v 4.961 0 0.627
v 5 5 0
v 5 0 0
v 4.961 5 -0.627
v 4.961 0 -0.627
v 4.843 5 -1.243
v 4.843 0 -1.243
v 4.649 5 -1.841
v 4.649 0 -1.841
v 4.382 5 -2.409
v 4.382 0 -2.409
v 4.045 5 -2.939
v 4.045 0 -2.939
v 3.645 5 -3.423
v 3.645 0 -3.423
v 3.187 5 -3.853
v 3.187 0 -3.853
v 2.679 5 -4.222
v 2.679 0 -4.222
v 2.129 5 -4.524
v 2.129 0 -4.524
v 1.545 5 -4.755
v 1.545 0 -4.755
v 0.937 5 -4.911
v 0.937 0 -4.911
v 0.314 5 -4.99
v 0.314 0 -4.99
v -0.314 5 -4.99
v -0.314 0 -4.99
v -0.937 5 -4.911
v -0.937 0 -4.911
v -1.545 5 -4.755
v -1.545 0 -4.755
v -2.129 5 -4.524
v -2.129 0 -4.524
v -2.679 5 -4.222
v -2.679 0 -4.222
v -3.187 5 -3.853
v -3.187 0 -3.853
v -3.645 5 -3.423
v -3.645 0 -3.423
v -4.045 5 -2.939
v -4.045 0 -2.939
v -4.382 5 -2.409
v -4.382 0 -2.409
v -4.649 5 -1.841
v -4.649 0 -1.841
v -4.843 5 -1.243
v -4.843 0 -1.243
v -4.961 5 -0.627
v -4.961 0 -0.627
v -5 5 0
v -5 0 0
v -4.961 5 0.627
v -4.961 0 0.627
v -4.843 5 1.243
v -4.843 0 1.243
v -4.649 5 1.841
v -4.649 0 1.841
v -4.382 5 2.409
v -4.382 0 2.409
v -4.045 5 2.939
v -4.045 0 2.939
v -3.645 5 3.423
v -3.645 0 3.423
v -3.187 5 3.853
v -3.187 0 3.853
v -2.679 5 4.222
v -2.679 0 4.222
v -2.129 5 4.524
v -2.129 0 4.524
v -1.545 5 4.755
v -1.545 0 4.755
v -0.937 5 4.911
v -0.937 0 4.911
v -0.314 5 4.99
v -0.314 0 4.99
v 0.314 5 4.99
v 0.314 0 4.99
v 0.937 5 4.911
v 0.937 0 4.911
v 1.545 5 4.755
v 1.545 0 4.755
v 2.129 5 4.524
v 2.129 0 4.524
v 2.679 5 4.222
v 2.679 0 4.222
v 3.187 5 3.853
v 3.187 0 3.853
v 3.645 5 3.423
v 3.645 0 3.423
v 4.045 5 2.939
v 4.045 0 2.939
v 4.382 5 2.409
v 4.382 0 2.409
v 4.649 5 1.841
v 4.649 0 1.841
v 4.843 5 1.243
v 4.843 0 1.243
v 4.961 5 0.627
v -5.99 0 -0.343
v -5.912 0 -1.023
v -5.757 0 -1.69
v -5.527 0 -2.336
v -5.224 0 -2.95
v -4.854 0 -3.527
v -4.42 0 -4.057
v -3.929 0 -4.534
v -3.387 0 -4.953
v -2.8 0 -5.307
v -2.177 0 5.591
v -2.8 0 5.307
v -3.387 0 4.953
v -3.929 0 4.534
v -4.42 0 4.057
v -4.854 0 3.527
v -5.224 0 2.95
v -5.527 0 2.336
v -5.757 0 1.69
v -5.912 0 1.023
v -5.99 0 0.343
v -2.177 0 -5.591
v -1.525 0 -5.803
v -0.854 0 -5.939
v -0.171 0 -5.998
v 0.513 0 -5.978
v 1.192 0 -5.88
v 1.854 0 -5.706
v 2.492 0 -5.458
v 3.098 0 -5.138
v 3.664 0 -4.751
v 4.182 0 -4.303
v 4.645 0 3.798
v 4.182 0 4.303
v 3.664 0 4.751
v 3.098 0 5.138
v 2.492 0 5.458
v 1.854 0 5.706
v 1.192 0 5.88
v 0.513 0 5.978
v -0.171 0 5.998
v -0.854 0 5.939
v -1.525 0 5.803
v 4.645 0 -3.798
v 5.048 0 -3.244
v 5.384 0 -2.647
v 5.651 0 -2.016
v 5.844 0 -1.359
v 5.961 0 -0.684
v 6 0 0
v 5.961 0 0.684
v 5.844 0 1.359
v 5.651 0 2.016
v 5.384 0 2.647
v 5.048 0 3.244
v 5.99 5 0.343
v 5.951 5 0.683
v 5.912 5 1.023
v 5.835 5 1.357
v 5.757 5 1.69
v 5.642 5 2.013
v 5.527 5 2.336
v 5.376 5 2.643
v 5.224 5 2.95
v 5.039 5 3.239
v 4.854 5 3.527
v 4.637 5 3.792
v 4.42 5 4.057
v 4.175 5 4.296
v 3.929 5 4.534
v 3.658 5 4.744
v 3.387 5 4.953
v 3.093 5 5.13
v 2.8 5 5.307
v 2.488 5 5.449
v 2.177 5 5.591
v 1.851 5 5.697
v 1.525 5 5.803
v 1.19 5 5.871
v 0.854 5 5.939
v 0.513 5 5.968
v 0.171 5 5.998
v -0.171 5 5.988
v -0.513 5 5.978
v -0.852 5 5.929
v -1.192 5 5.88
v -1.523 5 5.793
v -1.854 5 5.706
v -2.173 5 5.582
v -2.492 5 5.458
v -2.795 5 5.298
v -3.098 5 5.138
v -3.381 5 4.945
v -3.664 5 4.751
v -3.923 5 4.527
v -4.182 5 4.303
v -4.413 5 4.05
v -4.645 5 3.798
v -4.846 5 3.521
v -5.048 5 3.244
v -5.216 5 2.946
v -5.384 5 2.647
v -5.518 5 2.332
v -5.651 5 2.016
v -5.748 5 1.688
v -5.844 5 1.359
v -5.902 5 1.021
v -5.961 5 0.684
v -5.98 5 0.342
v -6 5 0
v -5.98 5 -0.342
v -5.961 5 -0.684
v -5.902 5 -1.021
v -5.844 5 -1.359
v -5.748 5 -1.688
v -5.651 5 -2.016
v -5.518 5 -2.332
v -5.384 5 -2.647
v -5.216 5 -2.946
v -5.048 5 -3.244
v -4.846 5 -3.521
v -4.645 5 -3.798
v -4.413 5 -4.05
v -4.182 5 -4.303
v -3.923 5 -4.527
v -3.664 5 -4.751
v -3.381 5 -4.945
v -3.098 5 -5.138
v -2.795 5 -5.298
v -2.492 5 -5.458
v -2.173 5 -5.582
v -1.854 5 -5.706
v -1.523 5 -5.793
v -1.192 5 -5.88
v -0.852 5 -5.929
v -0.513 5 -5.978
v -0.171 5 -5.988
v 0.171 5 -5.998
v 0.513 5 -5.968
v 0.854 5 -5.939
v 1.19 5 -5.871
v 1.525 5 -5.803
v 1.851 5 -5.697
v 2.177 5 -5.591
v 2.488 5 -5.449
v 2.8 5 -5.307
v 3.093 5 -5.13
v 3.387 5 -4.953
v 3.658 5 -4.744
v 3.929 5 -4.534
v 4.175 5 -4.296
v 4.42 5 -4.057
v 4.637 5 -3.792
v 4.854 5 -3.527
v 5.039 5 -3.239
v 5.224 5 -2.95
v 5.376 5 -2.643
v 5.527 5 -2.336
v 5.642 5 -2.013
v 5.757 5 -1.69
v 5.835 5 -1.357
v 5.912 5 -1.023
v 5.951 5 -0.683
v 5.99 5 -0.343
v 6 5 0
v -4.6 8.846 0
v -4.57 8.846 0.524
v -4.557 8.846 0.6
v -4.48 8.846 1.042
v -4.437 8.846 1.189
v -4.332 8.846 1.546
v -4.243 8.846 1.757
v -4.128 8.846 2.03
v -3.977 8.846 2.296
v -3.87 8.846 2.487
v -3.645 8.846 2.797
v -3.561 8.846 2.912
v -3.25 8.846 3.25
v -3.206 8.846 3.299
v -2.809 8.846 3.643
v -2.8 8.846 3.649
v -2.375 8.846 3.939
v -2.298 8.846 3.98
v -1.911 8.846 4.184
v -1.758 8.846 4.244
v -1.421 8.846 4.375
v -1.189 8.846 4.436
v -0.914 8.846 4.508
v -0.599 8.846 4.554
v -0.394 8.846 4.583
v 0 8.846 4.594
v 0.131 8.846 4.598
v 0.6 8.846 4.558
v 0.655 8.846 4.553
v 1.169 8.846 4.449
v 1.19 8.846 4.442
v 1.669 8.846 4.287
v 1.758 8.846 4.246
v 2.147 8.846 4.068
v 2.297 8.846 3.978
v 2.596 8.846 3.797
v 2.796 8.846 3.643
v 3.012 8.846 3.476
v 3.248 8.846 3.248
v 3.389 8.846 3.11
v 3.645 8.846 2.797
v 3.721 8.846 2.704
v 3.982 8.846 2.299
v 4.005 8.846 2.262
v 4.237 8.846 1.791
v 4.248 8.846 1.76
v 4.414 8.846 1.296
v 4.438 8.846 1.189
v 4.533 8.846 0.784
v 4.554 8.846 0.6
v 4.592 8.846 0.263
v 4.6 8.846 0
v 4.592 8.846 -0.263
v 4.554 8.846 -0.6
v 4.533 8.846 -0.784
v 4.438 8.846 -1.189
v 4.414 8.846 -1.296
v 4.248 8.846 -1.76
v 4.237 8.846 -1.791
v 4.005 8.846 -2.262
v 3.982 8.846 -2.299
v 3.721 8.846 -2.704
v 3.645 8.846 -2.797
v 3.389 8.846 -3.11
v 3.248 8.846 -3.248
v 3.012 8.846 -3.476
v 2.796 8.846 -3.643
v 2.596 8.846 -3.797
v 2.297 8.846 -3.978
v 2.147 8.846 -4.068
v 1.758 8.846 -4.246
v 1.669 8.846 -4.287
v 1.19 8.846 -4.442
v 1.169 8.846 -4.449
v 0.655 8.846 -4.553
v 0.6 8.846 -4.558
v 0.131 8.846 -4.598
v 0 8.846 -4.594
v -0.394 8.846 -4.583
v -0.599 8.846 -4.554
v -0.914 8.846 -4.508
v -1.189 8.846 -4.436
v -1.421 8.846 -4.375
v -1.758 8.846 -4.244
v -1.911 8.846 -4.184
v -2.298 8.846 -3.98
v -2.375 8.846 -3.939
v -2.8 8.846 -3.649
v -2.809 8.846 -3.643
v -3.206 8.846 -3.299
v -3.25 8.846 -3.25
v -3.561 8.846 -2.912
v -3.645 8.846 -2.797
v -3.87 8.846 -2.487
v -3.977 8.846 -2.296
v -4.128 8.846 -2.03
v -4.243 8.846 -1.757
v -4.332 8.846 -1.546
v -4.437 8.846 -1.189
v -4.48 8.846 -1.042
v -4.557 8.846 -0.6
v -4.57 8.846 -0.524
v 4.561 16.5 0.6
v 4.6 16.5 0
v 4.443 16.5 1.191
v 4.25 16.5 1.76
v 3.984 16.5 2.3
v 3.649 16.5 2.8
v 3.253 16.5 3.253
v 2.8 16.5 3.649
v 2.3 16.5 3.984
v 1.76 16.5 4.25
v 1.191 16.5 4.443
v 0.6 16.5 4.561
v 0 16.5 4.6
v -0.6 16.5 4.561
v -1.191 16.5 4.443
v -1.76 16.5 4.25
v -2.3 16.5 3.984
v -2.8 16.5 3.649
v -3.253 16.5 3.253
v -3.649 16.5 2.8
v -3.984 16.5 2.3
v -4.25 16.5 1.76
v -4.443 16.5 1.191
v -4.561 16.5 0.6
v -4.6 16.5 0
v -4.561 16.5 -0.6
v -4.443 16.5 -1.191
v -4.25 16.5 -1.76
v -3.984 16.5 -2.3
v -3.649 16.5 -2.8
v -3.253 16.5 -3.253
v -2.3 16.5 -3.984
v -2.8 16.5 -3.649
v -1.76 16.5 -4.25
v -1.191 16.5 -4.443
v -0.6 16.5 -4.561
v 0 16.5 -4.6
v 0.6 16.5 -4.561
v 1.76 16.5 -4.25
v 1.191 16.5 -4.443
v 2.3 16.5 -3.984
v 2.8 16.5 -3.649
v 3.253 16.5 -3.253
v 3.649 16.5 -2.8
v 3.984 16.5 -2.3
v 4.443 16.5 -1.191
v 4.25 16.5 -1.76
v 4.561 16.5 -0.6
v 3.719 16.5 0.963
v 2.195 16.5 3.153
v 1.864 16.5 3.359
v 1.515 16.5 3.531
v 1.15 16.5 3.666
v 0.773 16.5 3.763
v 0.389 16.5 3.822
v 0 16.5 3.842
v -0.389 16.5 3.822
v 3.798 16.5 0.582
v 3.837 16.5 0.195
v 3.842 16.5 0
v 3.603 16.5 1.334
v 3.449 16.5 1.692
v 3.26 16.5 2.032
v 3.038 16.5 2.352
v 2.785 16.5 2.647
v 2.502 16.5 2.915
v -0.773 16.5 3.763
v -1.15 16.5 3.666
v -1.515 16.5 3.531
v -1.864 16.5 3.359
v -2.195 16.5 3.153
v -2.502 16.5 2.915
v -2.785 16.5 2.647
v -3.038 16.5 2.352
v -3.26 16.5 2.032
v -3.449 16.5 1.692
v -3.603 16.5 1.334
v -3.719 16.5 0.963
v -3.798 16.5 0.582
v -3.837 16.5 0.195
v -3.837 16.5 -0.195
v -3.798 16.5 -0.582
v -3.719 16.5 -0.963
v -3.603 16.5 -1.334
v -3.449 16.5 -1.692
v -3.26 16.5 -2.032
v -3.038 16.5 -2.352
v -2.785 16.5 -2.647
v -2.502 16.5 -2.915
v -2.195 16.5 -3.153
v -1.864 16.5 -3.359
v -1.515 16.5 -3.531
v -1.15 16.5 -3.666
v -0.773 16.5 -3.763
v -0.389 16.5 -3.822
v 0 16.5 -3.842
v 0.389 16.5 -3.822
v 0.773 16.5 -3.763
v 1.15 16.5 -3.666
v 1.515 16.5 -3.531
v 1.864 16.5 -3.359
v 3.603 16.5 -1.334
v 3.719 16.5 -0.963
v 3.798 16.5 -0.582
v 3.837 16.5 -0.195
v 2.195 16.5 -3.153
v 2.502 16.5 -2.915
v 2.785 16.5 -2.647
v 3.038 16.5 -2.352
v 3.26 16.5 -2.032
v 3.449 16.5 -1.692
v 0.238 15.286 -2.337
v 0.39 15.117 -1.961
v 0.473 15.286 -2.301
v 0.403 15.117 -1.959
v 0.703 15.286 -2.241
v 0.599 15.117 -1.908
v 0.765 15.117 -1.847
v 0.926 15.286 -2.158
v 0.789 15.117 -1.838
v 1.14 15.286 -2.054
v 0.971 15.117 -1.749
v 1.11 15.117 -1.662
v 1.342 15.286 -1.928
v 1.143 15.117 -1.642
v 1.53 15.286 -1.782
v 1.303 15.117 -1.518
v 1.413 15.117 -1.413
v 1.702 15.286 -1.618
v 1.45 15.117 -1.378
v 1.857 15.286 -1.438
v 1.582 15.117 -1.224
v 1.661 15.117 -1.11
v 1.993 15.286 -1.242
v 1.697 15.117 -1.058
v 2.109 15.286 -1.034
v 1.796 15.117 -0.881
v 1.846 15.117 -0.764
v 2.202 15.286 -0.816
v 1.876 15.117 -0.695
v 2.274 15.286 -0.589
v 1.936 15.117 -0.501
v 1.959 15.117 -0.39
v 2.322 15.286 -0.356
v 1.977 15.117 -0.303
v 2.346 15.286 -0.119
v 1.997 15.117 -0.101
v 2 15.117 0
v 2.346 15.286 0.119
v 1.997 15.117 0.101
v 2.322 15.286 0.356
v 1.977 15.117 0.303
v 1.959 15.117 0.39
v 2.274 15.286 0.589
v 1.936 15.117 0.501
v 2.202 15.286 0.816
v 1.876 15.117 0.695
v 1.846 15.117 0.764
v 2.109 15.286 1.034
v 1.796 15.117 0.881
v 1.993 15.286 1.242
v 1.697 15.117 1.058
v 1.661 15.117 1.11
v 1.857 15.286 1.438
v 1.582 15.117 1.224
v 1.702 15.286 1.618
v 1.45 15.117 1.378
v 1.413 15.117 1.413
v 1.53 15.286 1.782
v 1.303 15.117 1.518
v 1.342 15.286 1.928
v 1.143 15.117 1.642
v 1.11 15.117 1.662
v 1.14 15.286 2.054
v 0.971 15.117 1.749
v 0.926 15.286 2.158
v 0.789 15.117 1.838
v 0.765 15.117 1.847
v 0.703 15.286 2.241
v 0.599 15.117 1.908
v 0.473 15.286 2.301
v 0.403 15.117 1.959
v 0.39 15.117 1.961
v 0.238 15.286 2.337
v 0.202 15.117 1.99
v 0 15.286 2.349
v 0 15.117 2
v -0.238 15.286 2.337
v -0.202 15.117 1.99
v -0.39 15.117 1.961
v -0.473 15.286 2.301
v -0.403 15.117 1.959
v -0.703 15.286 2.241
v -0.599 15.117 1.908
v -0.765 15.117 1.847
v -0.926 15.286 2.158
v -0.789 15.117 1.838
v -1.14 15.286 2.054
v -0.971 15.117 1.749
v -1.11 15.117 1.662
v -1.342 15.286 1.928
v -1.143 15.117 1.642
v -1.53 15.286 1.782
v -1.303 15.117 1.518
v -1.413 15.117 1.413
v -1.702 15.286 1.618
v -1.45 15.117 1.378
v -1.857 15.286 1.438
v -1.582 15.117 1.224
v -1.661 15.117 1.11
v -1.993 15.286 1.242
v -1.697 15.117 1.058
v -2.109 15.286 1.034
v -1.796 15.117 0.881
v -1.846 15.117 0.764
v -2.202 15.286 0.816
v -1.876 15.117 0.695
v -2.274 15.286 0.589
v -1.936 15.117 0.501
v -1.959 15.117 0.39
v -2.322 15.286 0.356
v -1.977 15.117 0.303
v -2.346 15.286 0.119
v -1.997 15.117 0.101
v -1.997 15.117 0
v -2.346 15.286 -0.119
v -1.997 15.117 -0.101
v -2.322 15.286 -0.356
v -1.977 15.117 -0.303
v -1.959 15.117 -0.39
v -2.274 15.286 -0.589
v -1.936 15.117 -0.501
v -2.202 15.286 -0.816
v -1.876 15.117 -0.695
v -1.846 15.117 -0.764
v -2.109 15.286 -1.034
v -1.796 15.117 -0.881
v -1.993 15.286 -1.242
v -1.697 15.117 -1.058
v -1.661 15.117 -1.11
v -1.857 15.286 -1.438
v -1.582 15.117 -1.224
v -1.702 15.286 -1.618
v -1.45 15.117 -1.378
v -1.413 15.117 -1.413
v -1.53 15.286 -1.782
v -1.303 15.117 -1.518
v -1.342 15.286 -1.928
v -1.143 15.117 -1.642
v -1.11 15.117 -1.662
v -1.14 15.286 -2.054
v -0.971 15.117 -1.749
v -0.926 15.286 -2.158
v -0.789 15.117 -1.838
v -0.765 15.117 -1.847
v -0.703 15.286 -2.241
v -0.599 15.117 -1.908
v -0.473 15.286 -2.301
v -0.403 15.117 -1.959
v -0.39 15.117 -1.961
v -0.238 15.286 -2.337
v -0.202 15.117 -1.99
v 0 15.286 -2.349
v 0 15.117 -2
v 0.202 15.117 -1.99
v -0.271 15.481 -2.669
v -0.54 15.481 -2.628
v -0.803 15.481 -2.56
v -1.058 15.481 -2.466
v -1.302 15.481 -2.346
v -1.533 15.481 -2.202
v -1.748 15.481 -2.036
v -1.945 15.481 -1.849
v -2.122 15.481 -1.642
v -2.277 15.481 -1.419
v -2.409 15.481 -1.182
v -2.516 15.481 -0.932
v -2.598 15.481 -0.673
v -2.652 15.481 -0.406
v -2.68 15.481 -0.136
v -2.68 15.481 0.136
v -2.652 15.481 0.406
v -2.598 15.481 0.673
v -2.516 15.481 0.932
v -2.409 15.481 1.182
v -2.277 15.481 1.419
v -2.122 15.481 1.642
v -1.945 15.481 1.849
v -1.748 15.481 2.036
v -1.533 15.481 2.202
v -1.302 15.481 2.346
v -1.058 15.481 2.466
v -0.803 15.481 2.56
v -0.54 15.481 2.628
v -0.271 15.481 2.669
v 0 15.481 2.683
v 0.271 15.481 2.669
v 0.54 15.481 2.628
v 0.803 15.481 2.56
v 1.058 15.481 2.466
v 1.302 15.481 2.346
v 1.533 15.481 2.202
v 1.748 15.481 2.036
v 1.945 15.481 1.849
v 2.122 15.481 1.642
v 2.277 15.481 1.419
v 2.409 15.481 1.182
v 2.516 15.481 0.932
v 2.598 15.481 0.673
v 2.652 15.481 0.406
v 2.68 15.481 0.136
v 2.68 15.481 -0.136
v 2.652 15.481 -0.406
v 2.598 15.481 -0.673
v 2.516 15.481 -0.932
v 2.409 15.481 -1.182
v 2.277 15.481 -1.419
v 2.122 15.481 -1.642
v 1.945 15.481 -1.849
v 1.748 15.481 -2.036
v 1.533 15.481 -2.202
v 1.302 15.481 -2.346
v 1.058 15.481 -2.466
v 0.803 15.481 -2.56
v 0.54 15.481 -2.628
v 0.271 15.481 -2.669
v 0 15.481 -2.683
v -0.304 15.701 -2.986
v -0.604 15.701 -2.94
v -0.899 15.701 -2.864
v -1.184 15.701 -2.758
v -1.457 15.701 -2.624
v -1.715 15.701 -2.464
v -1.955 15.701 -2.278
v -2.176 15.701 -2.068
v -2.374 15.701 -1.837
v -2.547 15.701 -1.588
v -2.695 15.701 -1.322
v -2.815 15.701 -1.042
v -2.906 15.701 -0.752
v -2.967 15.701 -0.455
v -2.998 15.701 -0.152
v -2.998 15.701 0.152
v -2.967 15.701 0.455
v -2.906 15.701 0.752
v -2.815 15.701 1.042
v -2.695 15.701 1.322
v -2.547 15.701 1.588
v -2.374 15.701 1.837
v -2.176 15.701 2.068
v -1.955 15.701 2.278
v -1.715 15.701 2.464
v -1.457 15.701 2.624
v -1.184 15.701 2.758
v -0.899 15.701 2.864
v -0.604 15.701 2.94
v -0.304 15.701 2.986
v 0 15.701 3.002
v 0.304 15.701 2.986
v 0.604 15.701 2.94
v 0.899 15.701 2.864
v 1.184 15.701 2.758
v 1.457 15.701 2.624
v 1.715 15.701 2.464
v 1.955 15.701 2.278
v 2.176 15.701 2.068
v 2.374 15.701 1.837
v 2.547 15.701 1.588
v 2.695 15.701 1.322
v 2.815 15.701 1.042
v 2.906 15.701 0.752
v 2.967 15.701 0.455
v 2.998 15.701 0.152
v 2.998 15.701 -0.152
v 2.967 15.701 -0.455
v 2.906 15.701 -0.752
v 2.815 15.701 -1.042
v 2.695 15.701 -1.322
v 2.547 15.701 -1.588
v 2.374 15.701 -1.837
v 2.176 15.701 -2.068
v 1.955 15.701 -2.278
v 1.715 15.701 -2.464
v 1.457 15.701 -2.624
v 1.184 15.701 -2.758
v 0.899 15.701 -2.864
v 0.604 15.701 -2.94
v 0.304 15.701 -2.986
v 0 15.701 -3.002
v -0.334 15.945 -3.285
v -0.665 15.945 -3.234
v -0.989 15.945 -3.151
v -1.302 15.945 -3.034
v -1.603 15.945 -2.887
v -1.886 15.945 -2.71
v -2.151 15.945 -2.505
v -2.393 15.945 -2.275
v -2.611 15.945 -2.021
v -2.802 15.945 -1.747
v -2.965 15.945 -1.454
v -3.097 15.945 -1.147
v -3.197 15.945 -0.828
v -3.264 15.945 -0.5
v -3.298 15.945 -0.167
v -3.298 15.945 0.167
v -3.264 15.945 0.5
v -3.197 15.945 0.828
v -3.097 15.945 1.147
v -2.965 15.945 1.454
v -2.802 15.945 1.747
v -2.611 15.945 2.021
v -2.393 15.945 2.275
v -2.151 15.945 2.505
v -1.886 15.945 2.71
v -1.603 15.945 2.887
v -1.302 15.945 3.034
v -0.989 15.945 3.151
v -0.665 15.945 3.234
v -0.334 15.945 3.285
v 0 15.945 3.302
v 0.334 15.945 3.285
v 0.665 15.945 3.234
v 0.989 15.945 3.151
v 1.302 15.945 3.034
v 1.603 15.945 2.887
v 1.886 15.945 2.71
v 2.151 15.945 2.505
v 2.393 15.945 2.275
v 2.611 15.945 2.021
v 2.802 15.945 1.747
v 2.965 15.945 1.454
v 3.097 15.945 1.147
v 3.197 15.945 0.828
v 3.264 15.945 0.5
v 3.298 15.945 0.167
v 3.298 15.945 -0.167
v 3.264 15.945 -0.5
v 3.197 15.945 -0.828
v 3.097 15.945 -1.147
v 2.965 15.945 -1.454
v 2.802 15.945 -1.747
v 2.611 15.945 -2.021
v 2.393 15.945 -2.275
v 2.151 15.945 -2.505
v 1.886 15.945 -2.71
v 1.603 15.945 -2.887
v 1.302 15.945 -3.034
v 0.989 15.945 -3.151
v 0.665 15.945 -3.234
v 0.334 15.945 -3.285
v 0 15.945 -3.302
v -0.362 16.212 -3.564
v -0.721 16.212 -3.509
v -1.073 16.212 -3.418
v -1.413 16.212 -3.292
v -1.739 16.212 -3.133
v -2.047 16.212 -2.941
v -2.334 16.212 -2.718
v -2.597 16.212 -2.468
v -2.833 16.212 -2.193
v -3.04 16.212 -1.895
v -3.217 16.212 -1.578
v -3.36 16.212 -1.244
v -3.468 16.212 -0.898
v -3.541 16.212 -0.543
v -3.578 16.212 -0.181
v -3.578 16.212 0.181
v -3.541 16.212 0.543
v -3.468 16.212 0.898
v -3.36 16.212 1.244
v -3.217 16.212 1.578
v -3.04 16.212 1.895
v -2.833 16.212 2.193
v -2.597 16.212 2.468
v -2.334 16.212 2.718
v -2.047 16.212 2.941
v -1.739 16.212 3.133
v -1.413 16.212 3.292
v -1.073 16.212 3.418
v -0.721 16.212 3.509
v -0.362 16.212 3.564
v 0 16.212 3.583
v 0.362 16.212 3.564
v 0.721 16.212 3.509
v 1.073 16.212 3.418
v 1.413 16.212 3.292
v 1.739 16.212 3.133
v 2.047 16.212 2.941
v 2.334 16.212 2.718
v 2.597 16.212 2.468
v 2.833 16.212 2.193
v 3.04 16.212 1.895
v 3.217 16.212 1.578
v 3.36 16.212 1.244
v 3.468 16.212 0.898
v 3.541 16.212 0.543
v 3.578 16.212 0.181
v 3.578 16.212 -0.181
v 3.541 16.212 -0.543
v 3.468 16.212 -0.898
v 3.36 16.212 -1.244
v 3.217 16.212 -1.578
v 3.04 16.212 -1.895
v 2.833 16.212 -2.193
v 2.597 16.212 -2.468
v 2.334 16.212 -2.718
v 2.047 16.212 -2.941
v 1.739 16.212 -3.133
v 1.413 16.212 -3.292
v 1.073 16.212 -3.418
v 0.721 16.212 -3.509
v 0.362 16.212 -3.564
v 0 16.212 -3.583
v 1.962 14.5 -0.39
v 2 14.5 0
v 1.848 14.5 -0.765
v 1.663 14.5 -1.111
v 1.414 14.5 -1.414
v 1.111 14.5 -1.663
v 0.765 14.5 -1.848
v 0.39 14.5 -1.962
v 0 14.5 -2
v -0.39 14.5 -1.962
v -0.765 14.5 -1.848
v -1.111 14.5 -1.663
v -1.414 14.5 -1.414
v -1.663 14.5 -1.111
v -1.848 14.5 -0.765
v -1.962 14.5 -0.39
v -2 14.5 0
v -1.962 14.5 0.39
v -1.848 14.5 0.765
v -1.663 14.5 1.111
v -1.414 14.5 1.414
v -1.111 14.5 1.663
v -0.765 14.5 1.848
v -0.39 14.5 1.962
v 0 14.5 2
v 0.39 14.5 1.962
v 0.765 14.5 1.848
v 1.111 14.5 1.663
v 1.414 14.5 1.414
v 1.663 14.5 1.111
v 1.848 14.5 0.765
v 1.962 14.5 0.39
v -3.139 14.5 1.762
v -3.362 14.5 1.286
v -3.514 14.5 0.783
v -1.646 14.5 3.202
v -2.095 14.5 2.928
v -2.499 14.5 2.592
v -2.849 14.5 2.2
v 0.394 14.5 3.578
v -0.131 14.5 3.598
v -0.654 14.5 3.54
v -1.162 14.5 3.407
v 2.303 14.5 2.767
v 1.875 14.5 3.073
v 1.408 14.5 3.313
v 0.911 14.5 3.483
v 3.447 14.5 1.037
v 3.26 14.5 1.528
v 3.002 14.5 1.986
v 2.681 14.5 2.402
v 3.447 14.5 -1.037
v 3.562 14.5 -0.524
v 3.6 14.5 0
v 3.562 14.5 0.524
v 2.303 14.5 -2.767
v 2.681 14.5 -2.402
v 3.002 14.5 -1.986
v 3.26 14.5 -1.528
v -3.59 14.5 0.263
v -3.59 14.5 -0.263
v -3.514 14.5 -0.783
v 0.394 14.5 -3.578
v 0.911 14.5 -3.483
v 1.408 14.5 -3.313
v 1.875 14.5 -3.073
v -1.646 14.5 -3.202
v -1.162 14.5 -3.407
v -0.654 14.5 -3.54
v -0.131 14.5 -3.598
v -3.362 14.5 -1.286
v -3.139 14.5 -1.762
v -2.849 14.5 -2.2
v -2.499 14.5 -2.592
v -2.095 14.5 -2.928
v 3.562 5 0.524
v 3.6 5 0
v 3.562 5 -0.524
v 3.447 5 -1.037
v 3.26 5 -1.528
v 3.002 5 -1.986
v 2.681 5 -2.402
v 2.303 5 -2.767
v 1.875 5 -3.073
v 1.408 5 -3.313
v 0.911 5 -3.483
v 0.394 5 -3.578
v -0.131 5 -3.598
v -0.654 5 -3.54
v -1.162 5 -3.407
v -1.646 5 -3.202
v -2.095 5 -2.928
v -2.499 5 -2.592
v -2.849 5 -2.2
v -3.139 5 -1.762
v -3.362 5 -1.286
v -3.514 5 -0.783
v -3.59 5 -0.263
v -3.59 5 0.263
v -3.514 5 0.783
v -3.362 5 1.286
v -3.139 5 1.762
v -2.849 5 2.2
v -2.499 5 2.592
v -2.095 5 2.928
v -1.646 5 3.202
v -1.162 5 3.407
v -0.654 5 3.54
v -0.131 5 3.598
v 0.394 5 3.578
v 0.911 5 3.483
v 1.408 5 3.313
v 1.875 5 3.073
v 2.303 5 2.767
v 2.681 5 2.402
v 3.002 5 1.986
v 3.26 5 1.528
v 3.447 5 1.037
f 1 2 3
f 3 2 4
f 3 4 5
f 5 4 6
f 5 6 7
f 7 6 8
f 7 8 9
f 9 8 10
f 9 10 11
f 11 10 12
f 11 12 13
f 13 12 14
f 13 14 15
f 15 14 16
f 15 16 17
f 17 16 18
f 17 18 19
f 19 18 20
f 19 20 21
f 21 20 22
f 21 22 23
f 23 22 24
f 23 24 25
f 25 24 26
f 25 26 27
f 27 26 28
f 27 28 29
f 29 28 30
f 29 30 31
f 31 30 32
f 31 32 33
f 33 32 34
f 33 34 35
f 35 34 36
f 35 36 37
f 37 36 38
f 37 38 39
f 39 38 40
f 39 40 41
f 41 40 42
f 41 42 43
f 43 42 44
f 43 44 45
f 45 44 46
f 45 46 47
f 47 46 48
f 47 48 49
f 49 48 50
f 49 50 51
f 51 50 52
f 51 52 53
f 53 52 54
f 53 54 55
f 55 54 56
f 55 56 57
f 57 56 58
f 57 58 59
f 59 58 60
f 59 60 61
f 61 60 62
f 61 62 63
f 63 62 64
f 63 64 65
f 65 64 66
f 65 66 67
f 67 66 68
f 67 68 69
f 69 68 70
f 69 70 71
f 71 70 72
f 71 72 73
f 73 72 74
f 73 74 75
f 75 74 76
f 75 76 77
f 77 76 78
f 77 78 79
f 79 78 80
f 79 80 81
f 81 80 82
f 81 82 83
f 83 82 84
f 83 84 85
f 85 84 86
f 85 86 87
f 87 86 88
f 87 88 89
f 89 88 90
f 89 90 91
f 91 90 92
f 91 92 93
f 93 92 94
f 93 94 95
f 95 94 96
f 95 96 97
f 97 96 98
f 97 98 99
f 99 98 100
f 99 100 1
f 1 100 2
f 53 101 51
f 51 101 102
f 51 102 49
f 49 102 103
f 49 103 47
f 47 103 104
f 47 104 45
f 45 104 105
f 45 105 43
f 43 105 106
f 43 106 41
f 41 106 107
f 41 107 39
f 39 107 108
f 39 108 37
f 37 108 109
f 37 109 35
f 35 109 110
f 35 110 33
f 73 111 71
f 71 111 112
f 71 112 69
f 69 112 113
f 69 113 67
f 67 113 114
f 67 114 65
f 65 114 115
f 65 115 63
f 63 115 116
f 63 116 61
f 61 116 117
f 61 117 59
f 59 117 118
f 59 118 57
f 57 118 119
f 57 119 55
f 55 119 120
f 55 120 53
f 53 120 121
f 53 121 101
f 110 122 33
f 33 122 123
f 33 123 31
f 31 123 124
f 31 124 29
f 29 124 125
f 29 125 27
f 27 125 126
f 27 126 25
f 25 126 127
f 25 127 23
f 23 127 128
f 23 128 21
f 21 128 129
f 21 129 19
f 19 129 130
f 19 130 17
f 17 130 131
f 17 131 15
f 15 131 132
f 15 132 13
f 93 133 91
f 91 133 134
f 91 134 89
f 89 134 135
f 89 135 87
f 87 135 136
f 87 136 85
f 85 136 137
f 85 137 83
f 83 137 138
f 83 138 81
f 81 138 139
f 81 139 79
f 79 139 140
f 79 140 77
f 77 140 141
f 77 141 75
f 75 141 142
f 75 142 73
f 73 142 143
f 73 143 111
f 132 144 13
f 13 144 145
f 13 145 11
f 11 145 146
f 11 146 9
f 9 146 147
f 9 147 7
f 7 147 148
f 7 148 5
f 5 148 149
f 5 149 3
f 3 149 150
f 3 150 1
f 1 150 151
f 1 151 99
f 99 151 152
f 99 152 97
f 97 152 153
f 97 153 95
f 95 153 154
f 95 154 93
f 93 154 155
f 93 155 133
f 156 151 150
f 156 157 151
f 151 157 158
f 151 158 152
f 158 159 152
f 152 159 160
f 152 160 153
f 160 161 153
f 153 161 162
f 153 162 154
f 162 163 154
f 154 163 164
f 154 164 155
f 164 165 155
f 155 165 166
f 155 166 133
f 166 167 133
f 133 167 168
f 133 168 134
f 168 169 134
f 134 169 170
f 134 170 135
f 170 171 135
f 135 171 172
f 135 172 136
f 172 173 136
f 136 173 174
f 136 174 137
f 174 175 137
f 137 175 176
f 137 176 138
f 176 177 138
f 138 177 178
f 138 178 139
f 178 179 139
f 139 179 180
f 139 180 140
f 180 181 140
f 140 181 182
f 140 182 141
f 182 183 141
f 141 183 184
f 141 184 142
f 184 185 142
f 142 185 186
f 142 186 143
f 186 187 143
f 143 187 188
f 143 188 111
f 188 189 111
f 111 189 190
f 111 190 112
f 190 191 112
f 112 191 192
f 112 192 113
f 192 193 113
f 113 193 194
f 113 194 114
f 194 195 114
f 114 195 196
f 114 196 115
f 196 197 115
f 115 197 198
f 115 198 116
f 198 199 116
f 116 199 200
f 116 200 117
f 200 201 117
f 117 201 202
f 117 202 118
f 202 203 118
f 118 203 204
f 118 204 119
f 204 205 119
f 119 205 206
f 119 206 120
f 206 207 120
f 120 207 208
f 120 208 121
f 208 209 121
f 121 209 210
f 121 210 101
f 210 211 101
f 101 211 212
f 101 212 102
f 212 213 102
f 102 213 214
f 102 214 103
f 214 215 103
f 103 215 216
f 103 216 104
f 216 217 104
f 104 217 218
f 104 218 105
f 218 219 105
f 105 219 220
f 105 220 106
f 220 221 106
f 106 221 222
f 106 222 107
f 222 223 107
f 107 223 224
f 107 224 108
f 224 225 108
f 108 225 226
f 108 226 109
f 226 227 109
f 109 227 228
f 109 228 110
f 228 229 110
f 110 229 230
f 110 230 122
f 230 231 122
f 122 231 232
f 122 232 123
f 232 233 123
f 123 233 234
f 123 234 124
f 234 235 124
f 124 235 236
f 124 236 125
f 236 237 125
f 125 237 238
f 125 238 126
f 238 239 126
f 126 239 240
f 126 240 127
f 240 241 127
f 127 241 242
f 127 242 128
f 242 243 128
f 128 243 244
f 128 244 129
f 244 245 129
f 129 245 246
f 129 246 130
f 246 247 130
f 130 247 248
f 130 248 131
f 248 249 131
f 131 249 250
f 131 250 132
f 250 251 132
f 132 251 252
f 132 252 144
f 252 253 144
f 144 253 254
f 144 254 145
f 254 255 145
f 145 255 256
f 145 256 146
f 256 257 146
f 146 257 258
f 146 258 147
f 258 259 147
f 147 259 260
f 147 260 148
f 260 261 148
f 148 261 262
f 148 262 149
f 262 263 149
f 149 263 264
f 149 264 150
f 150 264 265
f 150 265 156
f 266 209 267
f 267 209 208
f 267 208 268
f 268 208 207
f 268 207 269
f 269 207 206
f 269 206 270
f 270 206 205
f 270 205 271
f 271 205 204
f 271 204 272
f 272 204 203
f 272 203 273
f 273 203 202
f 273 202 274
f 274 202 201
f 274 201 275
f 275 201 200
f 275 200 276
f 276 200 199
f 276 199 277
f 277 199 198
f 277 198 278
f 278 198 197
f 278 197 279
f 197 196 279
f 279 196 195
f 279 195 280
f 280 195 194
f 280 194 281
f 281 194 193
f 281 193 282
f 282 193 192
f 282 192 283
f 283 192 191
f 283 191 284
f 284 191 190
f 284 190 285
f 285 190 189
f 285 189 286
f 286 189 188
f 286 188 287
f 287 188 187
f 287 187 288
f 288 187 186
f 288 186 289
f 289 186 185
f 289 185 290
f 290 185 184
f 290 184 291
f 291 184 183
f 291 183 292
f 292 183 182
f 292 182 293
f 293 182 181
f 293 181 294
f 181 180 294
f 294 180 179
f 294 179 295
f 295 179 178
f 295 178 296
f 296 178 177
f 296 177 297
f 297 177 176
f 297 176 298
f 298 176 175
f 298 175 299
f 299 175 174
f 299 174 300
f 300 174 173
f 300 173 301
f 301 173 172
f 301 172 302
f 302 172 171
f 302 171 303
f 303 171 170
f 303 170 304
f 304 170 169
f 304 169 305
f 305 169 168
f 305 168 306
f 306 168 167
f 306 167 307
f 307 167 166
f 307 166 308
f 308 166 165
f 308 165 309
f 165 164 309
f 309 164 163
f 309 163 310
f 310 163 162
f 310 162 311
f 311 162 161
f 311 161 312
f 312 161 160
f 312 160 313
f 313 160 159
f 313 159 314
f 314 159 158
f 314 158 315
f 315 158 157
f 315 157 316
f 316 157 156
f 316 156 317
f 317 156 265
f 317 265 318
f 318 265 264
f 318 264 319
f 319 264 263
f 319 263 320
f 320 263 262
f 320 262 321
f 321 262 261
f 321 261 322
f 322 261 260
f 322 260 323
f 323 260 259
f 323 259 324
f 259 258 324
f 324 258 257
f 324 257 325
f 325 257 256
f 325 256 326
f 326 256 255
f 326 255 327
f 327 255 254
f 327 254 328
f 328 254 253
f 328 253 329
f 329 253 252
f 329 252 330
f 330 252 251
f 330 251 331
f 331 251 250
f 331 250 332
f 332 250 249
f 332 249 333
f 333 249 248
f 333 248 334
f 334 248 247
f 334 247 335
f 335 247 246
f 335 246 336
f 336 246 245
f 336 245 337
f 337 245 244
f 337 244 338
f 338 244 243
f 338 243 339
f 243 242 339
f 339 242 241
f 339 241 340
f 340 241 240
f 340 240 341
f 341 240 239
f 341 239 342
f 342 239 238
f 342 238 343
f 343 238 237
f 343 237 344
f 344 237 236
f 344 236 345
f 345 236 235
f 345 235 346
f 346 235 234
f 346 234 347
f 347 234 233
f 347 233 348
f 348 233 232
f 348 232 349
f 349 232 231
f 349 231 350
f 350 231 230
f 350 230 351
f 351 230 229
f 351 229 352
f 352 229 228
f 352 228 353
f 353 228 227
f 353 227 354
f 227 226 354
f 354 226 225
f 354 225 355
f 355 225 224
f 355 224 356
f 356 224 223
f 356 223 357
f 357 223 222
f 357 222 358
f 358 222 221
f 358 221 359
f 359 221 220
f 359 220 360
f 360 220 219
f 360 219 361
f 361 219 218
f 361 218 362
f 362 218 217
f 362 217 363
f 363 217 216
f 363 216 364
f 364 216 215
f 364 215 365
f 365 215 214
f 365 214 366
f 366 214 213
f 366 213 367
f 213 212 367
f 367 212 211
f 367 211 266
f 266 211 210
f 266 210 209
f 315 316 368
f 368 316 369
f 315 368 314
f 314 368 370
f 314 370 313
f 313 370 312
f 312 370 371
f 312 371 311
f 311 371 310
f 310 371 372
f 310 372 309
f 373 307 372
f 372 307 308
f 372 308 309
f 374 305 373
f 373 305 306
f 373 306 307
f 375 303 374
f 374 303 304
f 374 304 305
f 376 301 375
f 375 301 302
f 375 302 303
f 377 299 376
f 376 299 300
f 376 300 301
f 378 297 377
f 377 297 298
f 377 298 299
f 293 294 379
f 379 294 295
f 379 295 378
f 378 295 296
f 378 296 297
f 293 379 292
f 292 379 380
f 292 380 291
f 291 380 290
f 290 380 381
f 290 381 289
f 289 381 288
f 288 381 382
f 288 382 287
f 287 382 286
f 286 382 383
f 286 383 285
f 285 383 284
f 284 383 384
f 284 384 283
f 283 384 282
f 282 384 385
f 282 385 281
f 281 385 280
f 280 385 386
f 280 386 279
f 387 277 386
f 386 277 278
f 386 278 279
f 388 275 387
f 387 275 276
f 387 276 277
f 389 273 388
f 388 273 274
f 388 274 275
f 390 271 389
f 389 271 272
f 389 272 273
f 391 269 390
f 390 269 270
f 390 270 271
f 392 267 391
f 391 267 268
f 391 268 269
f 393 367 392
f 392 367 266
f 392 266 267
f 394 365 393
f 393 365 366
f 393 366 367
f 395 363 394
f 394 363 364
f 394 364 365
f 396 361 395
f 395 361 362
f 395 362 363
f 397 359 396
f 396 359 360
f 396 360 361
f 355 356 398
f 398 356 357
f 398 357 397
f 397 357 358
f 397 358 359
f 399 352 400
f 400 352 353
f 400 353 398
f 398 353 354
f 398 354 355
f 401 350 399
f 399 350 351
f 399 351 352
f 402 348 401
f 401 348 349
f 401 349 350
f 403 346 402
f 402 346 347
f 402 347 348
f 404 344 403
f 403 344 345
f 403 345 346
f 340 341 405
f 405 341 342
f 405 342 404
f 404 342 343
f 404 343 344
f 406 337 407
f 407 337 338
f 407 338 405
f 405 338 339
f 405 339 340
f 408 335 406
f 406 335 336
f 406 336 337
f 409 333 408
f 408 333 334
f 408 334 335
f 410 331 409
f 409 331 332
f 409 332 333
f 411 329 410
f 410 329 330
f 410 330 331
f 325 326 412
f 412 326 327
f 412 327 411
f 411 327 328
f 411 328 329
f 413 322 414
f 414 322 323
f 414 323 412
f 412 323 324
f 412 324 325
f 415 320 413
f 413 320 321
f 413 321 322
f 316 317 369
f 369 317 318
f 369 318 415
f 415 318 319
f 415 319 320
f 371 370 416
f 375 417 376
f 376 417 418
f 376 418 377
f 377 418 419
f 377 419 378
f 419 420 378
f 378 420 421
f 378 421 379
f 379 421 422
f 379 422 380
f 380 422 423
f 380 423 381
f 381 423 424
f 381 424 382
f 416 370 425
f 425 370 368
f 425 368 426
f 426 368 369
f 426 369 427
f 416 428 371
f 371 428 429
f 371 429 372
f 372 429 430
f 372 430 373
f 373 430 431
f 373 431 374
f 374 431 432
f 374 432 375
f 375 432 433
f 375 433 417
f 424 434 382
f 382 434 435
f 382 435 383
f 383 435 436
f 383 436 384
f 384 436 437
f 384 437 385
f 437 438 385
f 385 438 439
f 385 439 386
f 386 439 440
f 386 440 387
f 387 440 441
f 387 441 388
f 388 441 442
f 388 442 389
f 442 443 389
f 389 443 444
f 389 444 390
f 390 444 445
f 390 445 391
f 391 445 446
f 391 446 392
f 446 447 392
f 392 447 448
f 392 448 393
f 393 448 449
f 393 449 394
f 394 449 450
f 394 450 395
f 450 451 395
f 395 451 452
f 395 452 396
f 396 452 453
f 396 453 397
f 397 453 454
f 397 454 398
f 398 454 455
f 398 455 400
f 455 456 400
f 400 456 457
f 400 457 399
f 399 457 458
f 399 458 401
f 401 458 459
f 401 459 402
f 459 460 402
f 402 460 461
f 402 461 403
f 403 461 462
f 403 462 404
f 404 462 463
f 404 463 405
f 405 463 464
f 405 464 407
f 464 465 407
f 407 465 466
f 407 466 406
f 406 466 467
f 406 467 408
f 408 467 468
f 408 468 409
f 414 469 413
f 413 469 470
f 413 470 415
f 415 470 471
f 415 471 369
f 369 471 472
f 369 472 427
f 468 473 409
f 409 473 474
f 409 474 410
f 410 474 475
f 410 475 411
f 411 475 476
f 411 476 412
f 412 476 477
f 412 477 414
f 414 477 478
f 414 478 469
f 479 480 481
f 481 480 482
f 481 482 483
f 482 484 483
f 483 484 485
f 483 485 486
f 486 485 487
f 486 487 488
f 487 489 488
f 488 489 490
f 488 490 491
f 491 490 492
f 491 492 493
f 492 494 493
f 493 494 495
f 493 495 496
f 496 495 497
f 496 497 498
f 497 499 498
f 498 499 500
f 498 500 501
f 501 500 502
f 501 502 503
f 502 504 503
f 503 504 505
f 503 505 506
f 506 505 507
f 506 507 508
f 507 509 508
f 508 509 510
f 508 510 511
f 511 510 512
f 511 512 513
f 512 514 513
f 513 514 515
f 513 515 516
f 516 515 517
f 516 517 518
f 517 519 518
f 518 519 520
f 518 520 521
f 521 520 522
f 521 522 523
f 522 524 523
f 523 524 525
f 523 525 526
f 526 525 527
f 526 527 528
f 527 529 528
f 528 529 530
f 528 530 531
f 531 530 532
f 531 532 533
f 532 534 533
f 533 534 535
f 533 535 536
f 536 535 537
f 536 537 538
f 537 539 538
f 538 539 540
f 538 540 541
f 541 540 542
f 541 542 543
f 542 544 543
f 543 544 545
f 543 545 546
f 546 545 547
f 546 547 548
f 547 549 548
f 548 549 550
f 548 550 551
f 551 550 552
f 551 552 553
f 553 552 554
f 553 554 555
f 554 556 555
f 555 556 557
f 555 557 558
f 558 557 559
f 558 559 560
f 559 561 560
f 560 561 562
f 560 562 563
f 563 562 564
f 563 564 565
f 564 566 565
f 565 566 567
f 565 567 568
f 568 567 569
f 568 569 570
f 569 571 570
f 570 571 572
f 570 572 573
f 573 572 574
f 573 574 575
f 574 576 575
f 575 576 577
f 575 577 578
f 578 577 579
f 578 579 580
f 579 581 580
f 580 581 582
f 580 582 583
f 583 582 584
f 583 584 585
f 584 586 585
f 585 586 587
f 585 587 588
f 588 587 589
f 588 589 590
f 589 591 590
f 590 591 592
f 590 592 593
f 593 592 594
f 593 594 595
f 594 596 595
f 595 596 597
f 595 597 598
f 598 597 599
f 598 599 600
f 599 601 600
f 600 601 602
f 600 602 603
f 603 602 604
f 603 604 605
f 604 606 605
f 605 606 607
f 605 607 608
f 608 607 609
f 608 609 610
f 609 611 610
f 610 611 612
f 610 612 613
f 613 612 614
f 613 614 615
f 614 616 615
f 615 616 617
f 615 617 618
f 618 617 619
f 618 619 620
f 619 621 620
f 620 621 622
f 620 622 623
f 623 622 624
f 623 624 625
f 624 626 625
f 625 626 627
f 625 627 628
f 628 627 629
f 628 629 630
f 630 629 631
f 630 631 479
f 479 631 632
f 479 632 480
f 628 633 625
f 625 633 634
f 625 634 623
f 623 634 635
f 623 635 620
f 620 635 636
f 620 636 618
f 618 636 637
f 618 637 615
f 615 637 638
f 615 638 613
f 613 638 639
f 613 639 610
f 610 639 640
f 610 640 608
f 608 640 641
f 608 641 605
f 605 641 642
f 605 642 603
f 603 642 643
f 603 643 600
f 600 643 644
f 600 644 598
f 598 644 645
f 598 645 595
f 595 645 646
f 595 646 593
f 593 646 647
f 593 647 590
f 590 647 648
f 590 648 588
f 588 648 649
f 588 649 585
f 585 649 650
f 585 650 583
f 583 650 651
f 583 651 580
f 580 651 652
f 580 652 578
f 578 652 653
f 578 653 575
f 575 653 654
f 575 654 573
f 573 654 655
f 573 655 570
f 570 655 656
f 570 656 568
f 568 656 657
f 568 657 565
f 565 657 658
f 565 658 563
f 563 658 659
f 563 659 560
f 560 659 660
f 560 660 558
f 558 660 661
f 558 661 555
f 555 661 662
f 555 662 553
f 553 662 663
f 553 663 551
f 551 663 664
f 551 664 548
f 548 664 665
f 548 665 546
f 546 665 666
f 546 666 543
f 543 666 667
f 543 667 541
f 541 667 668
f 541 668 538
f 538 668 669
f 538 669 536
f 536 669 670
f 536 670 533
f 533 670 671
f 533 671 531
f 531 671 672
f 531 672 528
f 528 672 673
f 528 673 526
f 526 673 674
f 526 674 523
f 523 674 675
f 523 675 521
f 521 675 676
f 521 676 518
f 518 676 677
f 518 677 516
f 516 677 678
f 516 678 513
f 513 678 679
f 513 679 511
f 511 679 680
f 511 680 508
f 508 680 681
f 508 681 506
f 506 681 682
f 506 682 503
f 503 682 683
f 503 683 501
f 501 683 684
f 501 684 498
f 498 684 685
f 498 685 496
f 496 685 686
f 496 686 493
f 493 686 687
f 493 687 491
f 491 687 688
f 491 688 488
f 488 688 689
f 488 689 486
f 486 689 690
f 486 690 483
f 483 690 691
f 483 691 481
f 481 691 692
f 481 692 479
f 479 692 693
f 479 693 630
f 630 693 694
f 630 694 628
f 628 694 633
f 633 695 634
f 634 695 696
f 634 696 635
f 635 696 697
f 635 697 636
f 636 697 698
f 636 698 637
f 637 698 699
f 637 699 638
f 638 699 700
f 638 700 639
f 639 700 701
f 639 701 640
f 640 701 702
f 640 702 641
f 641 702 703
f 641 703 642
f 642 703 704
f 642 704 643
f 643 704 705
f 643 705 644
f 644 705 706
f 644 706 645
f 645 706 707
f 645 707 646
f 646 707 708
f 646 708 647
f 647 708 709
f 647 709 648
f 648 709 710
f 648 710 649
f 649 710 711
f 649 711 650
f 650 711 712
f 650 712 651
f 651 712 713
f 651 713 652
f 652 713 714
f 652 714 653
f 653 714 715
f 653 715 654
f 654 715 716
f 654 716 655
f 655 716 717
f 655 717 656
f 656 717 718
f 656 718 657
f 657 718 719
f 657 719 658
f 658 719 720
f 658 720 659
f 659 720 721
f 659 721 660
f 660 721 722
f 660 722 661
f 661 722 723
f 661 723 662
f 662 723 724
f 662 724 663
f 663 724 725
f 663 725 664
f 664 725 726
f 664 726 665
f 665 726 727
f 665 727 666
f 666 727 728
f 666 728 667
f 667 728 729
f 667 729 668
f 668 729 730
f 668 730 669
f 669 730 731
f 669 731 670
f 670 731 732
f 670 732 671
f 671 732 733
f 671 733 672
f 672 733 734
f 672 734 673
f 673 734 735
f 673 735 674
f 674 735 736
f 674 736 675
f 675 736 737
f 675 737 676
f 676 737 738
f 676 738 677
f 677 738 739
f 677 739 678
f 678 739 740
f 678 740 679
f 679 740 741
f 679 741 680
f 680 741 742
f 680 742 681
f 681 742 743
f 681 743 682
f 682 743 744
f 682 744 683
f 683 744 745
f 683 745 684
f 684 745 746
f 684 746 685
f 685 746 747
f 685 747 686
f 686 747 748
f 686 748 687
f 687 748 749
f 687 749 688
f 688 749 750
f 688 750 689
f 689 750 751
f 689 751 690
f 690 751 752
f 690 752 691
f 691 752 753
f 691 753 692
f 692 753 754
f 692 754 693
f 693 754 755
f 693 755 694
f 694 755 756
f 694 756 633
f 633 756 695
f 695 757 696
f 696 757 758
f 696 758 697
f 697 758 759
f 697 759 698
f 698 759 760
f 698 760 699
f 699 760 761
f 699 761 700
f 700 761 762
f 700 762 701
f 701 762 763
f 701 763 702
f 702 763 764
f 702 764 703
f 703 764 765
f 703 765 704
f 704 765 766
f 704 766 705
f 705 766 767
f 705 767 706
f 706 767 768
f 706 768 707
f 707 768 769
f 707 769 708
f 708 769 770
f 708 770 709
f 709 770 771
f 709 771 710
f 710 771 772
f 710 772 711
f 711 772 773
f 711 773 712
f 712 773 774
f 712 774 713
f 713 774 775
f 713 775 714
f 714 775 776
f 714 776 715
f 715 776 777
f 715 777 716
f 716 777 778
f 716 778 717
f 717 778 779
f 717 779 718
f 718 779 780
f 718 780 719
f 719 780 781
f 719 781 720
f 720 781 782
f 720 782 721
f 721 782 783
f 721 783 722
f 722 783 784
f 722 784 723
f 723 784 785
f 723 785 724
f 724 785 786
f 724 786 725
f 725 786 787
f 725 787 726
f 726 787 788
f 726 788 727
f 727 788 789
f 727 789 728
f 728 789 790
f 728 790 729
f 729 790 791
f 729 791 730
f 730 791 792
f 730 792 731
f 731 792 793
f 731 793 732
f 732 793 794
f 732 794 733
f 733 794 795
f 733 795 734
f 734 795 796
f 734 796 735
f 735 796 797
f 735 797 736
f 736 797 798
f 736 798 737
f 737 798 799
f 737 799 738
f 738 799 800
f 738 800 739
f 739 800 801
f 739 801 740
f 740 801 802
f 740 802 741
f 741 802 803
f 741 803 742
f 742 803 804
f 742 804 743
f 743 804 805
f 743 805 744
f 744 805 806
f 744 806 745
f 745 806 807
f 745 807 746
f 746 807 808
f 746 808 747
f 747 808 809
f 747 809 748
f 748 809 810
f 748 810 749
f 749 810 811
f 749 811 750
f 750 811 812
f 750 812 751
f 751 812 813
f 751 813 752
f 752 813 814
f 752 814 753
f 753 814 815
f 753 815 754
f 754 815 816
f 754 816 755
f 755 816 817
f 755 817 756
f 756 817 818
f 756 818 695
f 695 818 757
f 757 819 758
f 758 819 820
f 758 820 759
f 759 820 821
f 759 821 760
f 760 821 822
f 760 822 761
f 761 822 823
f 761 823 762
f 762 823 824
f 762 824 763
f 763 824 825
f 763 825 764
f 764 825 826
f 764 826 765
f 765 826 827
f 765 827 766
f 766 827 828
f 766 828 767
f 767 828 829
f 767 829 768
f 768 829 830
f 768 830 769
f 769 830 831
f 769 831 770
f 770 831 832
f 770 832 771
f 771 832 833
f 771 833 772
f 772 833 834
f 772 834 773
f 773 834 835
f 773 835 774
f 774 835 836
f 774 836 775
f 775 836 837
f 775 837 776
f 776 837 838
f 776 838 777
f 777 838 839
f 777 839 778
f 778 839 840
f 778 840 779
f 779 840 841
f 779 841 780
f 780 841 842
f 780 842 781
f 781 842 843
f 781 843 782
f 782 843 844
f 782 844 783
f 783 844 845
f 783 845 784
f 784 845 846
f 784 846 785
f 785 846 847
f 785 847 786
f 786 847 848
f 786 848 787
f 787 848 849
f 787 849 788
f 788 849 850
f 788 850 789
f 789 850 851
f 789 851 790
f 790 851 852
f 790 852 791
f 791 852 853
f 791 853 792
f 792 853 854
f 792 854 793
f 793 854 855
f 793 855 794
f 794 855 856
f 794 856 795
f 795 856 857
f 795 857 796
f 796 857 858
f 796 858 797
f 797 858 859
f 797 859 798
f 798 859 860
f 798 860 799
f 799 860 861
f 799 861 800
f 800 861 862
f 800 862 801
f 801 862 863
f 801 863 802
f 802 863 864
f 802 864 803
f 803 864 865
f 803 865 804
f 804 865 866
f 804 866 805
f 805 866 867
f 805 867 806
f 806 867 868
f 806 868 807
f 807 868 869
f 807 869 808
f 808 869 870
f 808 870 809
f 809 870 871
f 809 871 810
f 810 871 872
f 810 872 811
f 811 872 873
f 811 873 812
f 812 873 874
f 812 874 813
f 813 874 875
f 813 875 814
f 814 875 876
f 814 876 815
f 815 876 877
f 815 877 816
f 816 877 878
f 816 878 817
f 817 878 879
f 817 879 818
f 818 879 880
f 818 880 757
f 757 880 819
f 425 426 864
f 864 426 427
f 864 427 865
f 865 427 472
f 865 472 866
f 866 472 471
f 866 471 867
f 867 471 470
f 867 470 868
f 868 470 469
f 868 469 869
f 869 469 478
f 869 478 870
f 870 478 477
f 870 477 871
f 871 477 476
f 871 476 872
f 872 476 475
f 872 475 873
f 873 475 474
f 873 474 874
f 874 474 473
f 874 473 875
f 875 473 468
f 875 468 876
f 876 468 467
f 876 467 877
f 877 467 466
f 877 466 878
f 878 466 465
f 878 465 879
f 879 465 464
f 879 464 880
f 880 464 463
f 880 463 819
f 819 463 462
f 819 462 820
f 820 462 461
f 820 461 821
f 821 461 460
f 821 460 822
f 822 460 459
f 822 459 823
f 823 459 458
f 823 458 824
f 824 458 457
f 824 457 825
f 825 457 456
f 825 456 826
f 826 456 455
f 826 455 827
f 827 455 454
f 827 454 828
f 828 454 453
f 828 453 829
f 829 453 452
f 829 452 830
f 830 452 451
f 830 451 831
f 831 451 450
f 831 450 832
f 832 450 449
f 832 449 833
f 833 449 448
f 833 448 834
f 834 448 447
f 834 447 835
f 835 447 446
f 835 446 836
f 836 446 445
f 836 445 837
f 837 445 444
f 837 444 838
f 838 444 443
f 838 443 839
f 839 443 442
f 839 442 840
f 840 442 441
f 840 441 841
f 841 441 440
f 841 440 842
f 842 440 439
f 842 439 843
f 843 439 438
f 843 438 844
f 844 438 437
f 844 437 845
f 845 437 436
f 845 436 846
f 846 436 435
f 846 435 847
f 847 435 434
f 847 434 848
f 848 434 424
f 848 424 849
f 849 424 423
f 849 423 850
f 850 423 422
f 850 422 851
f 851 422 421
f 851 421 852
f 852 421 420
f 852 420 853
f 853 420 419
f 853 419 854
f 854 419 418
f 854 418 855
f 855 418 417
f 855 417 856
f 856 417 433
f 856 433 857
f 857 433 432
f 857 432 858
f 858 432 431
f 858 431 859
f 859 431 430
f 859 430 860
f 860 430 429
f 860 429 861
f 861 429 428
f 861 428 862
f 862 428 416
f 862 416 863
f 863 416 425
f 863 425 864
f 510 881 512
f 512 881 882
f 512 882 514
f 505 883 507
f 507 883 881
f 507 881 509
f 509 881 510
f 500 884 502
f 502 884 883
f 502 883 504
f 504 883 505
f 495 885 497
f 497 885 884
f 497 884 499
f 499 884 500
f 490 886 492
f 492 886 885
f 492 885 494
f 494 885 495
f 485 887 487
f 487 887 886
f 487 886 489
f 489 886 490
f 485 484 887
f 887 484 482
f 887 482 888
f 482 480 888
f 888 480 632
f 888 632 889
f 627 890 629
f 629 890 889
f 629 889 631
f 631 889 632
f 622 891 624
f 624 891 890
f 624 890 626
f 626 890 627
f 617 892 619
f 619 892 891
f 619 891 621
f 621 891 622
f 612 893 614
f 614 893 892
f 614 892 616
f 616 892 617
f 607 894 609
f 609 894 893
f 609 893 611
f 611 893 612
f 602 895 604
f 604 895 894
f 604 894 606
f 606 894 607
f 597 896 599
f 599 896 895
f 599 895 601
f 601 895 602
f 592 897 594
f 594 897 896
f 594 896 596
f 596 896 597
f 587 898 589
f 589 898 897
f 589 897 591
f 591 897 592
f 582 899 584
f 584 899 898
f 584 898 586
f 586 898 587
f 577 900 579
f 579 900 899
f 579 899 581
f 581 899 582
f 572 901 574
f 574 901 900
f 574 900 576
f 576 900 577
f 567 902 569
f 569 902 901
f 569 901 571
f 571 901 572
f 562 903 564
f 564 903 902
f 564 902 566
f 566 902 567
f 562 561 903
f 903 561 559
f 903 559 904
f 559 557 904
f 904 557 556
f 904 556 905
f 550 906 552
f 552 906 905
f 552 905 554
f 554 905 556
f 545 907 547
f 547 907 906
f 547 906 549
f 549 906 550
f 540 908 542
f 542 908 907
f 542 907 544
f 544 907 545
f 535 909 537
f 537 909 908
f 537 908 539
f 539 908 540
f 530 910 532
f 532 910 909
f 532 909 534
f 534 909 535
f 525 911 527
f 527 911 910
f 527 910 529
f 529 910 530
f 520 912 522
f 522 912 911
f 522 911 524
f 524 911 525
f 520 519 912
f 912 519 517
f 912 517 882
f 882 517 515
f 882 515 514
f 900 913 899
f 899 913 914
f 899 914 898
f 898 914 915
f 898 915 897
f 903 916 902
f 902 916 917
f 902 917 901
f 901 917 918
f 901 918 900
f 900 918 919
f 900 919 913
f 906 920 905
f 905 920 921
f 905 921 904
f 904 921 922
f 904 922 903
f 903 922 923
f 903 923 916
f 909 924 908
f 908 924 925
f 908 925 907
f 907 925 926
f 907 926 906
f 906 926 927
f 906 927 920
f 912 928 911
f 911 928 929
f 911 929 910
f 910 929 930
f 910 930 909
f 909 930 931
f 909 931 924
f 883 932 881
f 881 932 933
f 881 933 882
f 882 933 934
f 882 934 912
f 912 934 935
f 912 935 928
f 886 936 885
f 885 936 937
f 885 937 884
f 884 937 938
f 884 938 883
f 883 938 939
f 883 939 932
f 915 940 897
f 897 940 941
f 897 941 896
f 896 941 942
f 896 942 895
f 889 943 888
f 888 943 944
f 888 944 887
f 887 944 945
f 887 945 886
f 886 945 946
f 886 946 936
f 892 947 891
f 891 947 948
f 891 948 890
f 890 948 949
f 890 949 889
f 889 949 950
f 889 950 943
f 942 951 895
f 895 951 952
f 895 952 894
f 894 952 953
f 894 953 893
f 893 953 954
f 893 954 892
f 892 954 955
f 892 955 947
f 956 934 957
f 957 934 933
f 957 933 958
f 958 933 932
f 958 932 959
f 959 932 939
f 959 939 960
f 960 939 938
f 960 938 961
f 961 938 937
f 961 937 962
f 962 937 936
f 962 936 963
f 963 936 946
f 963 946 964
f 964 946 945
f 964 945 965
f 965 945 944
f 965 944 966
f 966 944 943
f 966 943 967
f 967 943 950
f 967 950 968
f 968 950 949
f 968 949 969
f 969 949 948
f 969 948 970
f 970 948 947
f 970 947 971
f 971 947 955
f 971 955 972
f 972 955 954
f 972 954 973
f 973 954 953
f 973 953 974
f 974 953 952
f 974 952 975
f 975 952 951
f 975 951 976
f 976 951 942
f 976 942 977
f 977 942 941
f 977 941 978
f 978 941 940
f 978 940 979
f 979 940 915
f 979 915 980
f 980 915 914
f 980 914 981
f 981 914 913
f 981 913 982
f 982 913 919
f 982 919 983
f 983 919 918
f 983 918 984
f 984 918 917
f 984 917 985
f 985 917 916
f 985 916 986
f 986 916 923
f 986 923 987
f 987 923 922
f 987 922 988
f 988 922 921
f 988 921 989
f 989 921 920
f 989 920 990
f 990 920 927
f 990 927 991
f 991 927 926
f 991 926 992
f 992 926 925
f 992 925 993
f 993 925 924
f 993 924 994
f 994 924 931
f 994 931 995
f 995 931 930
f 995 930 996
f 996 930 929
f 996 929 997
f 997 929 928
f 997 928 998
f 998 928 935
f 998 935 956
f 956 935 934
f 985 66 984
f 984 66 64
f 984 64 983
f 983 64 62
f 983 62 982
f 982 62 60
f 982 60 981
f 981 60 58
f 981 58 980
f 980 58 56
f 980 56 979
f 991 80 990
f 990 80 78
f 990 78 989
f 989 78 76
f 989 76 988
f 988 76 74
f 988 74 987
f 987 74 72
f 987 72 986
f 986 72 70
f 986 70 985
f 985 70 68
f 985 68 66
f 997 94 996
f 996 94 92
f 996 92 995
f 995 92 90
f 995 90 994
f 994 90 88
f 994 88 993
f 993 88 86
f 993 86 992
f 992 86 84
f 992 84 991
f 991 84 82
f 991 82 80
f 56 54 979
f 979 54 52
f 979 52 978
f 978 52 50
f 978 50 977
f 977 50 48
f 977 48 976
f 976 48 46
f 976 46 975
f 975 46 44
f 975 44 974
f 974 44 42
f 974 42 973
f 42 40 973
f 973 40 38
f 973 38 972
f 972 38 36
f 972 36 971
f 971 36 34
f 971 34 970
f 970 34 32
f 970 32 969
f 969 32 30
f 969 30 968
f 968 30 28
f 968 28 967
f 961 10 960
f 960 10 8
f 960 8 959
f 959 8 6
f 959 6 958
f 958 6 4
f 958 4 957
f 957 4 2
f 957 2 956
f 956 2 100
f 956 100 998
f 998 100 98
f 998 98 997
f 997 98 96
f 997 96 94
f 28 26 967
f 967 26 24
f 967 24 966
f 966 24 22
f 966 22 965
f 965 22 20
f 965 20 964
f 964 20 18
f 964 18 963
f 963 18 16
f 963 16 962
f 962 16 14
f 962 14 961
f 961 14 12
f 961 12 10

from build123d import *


with BuildPart() as part:
    # Sketch1 → Revolve1 (revolve)
    with BuildSketch(Plane.XY):
        with BuildLine():
            Line((6, 0), (5, 0))
            Line((5, 0), (5, 5))
            Line((5, 5), (3.6, 5))
            Line((3.6, 5), (3.6, 14.5))
            Line((3.6, 14.5), (2, 14.5))
            Line((2, 14.5), (2, 15.117424305))
            ThreePointArc((2, 15.117424305), (3.001625132, 15.701219365), (3.841874542, 16.5))
            Line((3.841874542, 16.5), (4.6, 16.5))
            Line((4.6, 16.5), (4.6, 8.846468387))
            Line((4.6, 8.846468387), (6, 5))
            Line((6, 5), (6, 0))
        make_face()
    revolve(axis=Axis((0, 14.8, 0), (0, -1, 0)))


solid = part.part
